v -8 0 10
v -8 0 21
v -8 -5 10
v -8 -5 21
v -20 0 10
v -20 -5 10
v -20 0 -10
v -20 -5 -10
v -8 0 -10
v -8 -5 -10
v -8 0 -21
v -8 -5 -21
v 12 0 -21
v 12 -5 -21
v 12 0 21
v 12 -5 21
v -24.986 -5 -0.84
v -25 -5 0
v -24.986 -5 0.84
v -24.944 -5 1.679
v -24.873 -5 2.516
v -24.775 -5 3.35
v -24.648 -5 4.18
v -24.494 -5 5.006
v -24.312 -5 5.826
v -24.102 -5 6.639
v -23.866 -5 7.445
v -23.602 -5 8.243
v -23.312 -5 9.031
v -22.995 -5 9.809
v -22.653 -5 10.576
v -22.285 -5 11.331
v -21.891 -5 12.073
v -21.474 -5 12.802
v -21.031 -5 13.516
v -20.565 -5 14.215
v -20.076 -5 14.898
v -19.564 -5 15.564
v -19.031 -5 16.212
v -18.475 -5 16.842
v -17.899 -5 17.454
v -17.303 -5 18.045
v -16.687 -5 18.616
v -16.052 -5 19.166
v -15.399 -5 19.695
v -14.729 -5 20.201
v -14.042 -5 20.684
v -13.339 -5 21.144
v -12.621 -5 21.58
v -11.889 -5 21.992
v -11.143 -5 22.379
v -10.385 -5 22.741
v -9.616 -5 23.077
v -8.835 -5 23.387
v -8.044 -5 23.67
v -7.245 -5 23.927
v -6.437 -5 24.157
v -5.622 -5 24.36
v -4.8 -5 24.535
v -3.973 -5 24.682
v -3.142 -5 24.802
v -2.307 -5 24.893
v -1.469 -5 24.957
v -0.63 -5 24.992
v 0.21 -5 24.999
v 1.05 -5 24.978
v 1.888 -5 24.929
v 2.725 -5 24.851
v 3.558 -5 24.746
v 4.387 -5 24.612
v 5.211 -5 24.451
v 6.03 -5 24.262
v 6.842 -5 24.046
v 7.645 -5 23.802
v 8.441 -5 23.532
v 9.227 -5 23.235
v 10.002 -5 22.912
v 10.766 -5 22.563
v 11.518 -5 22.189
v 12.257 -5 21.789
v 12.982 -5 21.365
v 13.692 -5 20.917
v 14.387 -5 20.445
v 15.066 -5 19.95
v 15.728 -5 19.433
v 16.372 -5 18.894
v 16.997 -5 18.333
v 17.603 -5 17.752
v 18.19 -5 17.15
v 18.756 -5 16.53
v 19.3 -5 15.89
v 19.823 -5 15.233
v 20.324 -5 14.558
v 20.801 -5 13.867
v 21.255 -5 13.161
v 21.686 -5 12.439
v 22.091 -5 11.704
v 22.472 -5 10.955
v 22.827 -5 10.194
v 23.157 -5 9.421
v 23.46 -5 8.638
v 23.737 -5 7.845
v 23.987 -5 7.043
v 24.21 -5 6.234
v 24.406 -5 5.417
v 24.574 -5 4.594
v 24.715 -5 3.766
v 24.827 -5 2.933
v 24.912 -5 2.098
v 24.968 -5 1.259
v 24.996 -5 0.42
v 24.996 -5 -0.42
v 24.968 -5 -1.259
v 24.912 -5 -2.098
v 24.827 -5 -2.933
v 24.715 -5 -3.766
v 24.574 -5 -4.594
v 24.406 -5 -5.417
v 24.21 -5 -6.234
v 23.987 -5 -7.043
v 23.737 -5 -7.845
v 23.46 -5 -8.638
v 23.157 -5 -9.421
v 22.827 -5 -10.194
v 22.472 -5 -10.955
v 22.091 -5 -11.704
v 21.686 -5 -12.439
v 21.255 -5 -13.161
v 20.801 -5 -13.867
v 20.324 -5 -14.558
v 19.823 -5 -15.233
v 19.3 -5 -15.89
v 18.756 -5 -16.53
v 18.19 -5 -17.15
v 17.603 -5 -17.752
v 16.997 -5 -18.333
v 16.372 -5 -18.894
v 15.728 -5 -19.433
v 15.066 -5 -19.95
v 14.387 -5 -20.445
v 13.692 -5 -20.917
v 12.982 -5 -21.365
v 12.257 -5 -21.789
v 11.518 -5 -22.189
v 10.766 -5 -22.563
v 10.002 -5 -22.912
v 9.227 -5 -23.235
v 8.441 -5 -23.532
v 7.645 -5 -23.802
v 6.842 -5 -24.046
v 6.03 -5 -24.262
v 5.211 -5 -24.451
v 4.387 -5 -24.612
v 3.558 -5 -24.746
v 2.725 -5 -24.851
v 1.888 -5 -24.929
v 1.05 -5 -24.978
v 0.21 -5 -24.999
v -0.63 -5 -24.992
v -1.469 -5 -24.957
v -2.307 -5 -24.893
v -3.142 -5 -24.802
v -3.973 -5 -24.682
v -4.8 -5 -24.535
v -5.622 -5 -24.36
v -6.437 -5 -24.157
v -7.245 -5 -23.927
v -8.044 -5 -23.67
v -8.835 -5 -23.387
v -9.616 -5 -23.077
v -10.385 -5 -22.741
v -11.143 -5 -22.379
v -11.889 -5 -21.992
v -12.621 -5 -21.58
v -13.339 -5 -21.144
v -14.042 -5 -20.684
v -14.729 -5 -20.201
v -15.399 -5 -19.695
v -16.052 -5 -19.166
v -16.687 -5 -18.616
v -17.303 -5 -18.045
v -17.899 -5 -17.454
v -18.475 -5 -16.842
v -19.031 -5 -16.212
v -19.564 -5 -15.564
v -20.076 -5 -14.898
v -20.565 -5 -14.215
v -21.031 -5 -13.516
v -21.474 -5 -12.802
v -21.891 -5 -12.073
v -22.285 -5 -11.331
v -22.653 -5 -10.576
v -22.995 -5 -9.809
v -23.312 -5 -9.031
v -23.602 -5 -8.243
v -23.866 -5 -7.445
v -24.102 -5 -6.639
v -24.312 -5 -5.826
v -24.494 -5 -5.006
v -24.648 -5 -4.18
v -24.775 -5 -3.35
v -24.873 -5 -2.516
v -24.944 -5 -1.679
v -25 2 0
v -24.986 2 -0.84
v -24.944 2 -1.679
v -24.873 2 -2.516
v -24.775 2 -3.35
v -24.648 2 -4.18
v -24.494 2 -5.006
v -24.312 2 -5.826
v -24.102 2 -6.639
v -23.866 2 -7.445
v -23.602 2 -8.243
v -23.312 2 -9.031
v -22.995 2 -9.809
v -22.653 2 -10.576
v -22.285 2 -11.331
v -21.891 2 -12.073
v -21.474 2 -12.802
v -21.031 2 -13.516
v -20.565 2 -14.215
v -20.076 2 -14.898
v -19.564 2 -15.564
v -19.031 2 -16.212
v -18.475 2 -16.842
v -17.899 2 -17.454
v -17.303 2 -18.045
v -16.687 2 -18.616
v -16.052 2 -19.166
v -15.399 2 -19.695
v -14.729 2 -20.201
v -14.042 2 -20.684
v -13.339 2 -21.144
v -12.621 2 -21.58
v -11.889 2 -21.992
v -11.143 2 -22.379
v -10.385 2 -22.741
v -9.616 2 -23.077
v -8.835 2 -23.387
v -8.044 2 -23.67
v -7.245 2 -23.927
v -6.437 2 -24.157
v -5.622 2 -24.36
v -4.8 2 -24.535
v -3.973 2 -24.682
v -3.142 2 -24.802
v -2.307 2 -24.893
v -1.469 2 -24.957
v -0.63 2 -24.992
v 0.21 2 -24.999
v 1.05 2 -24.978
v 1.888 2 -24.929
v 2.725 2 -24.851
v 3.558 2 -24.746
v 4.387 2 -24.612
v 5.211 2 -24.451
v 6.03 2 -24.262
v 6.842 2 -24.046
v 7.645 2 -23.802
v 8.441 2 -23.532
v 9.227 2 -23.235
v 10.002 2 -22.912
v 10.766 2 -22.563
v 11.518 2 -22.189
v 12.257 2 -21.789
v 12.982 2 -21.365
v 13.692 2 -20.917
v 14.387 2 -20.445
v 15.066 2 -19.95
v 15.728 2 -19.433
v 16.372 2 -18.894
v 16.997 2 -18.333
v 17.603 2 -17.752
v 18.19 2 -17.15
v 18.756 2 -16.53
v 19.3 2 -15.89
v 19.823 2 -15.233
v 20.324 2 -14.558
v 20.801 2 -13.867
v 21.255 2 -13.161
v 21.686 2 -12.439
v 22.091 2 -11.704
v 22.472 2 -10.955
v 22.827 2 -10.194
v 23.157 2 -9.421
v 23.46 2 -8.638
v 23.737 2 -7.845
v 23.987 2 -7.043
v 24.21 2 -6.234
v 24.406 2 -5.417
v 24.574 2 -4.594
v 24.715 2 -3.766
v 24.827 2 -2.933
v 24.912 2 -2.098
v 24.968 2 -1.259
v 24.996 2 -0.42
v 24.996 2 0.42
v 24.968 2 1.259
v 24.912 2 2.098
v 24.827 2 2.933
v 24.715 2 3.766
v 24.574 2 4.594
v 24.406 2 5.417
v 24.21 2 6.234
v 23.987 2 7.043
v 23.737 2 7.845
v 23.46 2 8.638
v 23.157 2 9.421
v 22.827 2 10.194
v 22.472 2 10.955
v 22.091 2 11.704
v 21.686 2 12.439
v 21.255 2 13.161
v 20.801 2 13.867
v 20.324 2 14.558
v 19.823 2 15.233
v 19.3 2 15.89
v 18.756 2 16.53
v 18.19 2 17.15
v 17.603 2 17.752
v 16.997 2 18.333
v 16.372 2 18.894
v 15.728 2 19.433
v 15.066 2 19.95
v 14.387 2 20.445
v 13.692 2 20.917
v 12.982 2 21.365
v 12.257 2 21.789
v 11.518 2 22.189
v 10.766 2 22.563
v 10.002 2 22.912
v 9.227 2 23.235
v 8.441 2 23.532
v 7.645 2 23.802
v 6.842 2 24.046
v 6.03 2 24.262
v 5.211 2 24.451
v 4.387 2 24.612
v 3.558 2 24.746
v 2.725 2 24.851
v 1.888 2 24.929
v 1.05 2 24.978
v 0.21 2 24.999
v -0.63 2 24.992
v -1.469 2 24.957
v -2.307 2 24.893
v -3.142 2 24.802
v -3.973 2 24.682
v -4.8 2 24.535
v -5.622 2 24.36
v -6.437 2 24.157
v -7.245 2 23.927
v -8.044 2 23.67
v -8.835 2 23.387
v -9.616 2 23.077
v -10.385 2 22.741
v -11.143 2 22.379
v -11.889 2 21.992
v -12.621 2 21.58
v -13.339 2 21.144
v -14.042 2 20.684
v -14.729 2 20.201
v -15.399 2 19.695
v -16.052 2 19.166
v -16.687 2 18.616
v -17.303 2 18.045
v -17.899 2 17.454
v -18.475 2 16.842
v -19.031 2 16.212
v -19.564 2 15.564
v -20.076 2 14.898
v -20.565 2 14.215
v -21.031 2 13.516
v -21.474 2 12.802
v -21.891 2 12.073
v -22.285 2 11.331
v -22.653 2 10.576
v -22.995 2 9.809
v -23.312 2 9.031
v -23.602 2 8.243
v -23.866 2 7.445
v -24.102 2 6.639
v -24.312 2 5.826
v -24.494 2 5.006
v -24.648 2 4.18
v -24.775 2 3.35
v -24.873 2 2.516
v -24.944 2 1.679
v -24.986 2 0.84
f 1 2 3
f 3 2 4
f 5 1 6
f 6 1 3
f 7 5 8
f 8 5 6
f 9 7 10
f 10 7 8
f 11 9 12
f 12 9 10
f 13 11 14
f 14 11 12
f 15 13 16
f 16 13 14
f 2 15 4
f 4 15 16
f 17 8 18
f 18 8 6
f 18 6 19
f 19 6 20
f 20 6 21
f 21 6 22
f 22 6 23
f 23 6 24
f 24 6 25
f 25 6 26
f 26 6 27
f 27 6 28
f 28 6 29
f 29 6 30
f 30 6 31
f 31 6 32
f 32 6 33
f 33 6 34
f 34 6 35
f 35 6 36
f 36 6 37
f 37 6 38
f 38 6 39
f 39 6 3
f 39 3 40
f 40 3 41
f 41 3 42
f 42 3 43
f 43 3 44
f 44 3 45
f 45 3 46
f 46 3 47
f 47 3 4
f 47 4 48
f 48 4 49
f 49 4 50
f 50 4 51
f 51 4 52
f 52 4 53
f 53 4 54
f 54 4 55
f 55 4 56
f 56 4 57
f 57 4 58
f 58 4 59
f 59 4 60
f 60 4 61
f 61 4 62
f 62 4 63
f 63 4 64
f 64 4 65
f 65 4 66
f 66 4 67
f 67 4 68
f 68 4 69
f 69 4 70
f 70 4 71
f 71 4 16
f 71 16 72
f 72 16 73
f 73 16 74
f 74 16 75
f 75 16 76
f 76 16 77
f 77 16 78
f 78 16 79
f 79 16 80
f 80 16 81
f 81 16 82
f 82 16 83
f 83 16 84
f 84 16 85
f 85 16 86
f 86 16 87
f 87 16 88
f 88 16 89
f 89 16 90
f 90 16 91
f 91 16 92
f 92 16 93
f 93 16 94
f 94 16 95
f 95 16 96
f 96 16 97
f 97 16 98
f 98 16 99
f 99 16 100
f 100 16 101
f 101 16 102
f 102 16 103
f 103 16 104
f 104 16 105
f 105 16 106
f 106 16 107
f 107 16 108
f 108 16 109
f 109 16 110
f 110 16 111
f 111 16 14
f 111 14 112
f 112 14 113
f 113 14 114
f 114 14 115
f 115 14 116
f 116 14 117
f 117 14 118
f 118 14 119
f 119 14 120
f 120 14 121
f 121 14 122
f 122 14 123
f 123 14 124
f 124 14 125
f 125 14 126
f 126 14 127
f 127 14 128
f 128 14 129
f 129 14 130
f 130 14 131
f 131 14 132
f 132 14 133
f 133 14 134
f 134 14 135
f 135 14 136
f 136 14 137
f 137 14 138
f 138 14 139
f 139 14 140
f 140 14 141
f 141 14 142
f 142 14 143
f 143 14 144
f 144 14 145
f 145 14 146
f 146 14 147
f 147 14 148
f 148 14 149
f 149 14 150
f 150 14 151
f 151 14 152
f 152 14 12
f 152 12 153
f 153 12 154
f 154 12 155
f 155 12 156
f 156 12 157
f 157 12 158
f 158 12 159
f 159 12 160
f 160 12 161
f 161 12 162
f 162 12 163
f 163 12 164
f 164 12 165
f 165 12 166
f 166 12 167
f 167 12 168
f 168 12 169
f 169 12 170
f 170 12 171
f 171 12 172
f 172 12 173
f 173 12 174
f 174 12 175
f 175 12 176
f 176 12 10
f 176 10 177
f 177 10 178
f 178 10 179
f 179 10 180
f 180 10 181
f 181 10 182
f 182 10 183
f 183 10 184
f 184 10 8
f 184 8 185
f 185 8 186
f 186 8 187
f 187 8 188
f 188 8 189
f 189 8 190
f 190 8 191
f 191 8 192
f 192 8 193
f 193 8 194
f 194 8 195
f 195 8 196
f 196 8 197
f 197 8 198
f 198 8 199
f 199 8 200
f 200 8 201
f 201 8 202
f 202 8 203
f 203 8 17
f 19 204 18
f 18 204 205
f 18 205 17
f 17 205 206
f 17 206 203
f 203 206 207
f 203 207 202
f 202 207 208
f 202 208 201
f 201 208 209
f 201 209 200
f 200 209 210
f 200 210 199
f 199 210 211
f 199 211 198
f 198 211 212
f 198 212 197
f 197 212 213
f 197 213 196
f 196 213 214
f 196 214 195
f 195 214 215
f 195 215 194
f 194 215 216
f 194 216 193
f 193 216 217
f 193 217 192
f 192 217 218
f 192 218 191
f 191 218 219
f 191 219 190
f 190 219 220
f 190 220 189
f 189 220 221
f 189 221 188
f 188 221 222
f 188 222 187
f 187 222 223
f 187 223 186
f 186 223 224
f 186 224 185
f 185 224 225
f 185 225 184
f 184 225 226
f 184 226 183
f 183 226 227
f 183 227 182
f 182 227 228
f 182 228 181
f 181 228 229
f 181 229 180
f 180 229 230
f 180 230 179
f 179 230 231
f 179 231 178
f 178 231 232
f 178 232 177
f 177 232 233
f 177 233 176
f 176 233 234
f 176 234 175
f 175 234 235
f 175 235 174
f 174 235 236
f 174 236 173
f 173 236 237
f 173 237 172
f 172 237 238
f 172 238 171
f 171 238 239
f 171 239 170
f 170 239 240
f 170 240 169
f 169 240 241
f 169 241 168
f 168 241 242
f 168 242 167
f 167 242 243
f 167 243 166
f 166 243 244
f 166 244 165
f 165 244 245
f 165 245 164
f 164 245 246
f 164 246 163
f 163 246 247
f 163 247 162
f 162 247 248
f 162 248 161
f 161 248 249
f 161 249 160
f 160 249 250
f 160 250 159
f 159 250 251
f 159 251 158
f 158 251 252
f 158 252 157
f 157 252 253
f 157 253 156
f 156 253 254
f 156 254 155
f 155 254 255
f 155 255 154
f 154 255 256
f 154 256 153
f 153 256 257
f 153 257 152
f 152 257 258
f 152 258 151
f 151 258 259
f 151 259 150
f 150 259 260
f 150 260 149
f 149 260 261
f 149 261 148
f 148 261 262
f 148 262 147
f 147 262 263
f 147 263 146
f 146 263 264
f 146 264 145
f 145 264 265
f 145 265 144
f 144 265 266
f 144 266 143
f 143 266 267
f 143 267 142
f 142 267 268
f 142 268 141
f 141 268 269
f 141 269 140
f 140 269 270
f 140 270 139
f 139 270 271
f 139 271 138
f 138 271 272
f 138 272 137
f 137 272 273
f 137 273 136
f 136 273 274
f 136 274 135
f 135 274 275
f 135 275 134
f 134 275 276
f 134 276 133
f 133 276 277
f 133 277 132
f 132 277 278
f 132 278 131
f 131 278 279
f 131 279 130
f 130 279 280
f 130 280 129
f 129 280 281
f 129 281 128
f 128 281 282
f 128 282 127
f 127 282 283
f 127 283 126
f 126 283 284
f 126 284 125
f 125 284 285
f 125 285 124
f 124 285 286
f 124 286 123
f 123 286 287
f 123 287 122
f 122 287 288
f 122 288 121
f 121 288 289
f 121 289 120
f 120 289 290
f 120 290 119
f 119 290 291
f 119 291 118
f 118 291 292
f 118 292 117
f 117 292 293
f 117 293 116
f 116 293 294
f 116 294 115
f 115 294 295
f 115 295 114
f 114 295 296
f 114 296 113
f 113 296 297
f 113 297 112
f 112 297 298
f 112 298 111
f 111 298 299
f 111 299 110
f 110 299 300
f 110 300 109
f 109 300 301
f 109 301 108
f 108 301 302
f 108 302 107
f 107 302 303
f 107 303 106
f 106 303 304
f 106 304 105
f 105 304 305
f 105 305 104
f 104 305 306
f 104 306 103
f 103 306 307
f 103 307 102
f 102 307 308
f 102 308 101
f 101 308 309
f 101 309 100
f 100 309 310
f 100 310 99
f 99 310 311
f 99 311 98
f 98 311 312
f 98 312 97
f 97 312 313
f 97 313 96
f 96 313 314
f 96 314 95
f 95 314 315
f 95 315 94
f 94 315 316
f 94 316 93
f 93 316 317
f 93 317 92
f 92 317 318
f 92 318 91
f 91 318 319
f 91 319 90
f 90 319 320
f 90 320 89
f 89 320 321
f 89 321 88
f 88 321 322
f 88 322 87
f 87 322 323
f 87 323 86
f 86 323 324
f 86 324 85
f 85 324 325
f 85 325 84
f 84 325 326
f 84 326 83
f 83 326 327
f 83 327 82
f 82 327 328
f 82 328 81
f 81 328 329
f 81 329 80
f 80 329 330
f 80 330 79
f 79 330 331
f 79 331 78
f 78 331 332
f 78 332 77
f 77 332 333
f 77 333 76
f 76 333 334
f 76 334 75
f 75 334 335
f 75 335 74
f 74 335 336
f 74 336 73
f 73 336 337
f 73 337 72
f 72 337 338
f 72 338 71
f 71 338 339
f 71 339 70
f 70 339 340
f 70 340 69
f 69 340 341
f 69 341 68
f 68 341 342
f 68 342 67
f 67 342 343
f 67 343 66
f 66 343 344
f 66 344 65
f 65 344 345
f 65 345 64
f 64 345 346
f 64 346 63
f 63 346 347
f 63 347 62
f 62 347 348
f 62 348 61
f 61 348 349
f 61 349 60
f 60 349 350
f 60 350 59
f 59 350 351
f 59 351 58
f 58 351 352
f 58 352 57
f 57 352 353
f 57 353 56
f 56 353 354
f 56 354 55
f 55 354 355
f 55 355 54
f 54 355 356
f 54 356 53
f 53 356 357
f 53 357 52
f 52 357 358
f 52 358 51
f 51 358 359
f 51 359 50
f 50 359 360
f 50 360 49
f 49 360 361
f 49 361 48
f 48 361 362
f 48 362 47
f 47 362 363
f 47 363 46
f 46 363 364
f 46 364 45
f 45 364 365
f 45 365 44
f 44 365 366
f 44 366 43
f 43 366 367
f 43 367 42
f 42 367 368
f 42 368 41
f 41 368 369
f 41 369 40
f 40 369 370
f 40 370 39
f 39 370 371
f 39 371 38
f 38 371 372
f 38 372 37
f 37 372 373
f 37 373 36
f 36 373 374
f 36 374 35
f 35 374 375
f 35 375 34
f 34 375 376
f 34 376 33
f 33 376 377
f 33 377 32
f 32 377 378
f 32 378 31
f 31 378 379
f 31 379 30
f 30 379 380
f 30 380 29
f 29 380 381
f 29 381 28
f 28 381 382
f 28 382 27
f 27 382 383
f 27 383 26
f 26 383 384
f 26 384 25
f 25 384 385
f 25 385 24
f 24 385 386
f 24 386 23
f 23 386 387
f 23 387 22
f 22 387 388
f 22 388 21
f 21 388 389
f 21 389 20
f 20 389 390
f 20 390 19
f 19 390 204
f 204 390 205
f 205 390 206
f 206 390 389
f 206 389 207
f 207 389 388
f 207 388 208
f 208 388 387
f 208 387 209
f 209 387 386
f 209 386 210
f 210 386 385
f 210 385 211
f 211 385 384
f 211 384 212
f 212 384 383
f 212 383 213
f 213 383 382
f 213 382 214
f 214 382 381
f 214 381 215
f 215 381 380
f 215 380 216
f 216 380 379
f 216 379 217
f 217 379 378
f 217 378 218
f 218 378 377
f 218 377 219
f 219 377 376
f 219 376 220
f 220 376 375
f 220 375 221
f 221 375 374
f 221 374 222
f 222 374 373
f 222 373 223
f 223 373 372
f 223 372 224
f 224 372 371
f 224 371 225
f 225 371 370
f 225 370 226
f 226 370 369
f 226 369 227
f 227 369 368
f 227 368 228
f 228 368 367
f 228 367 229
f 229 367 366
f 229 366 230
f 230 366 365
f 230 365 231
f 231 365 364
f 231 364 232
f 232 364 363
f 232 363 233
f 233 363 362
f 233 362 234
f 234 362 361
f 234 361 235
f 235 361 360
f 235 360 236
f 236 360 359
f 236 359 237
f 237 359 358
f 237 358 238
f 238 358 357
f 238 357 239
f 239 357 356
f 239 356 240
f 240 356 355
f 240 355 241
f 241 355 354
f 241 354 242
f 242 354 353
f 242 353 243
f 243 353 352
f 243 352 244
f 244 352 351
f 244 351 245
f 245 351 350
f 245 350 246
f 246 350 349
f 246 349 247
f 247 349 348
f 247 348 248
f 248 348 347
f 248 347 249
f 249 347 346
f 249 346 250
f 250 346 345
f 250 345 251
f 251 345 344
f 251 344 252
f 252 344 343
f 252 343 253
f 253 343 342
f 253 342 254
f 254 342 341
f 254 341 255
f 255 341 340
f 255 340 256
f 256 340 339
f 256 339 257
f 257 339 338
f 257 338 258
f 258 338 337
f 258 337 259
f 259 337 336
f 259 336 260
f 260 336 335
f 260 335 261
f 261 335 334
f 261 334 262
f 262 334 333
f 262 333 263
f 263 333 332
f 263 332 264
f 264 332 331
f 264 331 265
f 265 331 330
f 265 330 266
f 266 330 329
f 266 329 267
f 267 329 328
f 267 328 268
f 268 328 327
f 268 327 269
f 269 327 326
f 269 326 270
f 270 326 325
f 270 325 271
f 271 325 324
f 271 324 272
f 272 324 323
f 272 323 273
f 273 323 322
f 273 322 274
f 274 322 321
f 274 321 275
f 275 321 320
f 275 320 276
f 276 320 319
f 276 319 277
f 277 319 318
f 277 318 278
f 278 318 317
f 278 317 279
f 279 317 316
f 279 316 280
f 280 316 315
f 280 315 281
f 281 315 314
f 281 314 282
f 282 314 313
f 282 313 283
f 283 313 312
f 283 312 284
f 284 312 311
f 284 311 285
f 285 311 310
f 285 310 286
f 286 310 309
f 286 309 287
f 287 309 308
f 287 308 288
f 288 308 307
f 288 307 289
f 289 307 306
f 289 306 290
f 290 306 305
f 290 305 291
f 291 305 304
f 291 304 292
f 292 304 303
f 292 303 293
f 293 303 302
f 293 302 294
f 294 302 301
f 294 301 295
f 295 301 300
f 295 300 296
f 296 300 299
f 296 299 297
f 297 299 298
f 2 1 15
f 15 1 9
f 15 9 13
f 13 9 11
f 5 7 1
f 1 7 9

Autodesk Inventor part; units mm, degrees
ref_plane "YZ Plane" through (0, 0, 0) normal (1, 0, 0) x (0, 1, 0)
ref_plane "XZ Plane" through (0, 0, 0) normal (0, 1, 0) x (-1, 0, 0)
ref_plane "XY Plane" through (0, 0, 0) normal (0, 0, 1) x (1, 0, 0)
sketch "Sketch1" plane through (0, 0, 0) normal (0, 1, 0) x (-1, 0, 0)
  circle A0 centre (0, 0) radius 25
  line L0 (8, 21) -> (8, -21)
  line L1 (8, -21) -> (-12, -21)
  line L2 (-12, -21) -> (-12, 21)
  line L3 (-12, 21) -> (8, 21)
  line L4 (8, 10) -> (20, 10)
  line L5 (20, 10) -> (20, -10)
  line L6 (20, -10) -> (8, -10)
  dimension "d0" = 50
  dimension "d1" = 20
  dimension "d2" = 20
  dimension "d3" = 42
  dimension "d4" = 21
  dimension "d5" = 10
  dimension "d6" = 8
  dimension "d7" = 20
extrude "Extrusion1" add sketch "Sketch1" along normal blind 2 contours A0 | L0 L1 L2 L3 | L4 L5 L6 L0
extrude "Extrusion2" add sketch "Sketch1" against normal blind 5
properties part number "Battery"
